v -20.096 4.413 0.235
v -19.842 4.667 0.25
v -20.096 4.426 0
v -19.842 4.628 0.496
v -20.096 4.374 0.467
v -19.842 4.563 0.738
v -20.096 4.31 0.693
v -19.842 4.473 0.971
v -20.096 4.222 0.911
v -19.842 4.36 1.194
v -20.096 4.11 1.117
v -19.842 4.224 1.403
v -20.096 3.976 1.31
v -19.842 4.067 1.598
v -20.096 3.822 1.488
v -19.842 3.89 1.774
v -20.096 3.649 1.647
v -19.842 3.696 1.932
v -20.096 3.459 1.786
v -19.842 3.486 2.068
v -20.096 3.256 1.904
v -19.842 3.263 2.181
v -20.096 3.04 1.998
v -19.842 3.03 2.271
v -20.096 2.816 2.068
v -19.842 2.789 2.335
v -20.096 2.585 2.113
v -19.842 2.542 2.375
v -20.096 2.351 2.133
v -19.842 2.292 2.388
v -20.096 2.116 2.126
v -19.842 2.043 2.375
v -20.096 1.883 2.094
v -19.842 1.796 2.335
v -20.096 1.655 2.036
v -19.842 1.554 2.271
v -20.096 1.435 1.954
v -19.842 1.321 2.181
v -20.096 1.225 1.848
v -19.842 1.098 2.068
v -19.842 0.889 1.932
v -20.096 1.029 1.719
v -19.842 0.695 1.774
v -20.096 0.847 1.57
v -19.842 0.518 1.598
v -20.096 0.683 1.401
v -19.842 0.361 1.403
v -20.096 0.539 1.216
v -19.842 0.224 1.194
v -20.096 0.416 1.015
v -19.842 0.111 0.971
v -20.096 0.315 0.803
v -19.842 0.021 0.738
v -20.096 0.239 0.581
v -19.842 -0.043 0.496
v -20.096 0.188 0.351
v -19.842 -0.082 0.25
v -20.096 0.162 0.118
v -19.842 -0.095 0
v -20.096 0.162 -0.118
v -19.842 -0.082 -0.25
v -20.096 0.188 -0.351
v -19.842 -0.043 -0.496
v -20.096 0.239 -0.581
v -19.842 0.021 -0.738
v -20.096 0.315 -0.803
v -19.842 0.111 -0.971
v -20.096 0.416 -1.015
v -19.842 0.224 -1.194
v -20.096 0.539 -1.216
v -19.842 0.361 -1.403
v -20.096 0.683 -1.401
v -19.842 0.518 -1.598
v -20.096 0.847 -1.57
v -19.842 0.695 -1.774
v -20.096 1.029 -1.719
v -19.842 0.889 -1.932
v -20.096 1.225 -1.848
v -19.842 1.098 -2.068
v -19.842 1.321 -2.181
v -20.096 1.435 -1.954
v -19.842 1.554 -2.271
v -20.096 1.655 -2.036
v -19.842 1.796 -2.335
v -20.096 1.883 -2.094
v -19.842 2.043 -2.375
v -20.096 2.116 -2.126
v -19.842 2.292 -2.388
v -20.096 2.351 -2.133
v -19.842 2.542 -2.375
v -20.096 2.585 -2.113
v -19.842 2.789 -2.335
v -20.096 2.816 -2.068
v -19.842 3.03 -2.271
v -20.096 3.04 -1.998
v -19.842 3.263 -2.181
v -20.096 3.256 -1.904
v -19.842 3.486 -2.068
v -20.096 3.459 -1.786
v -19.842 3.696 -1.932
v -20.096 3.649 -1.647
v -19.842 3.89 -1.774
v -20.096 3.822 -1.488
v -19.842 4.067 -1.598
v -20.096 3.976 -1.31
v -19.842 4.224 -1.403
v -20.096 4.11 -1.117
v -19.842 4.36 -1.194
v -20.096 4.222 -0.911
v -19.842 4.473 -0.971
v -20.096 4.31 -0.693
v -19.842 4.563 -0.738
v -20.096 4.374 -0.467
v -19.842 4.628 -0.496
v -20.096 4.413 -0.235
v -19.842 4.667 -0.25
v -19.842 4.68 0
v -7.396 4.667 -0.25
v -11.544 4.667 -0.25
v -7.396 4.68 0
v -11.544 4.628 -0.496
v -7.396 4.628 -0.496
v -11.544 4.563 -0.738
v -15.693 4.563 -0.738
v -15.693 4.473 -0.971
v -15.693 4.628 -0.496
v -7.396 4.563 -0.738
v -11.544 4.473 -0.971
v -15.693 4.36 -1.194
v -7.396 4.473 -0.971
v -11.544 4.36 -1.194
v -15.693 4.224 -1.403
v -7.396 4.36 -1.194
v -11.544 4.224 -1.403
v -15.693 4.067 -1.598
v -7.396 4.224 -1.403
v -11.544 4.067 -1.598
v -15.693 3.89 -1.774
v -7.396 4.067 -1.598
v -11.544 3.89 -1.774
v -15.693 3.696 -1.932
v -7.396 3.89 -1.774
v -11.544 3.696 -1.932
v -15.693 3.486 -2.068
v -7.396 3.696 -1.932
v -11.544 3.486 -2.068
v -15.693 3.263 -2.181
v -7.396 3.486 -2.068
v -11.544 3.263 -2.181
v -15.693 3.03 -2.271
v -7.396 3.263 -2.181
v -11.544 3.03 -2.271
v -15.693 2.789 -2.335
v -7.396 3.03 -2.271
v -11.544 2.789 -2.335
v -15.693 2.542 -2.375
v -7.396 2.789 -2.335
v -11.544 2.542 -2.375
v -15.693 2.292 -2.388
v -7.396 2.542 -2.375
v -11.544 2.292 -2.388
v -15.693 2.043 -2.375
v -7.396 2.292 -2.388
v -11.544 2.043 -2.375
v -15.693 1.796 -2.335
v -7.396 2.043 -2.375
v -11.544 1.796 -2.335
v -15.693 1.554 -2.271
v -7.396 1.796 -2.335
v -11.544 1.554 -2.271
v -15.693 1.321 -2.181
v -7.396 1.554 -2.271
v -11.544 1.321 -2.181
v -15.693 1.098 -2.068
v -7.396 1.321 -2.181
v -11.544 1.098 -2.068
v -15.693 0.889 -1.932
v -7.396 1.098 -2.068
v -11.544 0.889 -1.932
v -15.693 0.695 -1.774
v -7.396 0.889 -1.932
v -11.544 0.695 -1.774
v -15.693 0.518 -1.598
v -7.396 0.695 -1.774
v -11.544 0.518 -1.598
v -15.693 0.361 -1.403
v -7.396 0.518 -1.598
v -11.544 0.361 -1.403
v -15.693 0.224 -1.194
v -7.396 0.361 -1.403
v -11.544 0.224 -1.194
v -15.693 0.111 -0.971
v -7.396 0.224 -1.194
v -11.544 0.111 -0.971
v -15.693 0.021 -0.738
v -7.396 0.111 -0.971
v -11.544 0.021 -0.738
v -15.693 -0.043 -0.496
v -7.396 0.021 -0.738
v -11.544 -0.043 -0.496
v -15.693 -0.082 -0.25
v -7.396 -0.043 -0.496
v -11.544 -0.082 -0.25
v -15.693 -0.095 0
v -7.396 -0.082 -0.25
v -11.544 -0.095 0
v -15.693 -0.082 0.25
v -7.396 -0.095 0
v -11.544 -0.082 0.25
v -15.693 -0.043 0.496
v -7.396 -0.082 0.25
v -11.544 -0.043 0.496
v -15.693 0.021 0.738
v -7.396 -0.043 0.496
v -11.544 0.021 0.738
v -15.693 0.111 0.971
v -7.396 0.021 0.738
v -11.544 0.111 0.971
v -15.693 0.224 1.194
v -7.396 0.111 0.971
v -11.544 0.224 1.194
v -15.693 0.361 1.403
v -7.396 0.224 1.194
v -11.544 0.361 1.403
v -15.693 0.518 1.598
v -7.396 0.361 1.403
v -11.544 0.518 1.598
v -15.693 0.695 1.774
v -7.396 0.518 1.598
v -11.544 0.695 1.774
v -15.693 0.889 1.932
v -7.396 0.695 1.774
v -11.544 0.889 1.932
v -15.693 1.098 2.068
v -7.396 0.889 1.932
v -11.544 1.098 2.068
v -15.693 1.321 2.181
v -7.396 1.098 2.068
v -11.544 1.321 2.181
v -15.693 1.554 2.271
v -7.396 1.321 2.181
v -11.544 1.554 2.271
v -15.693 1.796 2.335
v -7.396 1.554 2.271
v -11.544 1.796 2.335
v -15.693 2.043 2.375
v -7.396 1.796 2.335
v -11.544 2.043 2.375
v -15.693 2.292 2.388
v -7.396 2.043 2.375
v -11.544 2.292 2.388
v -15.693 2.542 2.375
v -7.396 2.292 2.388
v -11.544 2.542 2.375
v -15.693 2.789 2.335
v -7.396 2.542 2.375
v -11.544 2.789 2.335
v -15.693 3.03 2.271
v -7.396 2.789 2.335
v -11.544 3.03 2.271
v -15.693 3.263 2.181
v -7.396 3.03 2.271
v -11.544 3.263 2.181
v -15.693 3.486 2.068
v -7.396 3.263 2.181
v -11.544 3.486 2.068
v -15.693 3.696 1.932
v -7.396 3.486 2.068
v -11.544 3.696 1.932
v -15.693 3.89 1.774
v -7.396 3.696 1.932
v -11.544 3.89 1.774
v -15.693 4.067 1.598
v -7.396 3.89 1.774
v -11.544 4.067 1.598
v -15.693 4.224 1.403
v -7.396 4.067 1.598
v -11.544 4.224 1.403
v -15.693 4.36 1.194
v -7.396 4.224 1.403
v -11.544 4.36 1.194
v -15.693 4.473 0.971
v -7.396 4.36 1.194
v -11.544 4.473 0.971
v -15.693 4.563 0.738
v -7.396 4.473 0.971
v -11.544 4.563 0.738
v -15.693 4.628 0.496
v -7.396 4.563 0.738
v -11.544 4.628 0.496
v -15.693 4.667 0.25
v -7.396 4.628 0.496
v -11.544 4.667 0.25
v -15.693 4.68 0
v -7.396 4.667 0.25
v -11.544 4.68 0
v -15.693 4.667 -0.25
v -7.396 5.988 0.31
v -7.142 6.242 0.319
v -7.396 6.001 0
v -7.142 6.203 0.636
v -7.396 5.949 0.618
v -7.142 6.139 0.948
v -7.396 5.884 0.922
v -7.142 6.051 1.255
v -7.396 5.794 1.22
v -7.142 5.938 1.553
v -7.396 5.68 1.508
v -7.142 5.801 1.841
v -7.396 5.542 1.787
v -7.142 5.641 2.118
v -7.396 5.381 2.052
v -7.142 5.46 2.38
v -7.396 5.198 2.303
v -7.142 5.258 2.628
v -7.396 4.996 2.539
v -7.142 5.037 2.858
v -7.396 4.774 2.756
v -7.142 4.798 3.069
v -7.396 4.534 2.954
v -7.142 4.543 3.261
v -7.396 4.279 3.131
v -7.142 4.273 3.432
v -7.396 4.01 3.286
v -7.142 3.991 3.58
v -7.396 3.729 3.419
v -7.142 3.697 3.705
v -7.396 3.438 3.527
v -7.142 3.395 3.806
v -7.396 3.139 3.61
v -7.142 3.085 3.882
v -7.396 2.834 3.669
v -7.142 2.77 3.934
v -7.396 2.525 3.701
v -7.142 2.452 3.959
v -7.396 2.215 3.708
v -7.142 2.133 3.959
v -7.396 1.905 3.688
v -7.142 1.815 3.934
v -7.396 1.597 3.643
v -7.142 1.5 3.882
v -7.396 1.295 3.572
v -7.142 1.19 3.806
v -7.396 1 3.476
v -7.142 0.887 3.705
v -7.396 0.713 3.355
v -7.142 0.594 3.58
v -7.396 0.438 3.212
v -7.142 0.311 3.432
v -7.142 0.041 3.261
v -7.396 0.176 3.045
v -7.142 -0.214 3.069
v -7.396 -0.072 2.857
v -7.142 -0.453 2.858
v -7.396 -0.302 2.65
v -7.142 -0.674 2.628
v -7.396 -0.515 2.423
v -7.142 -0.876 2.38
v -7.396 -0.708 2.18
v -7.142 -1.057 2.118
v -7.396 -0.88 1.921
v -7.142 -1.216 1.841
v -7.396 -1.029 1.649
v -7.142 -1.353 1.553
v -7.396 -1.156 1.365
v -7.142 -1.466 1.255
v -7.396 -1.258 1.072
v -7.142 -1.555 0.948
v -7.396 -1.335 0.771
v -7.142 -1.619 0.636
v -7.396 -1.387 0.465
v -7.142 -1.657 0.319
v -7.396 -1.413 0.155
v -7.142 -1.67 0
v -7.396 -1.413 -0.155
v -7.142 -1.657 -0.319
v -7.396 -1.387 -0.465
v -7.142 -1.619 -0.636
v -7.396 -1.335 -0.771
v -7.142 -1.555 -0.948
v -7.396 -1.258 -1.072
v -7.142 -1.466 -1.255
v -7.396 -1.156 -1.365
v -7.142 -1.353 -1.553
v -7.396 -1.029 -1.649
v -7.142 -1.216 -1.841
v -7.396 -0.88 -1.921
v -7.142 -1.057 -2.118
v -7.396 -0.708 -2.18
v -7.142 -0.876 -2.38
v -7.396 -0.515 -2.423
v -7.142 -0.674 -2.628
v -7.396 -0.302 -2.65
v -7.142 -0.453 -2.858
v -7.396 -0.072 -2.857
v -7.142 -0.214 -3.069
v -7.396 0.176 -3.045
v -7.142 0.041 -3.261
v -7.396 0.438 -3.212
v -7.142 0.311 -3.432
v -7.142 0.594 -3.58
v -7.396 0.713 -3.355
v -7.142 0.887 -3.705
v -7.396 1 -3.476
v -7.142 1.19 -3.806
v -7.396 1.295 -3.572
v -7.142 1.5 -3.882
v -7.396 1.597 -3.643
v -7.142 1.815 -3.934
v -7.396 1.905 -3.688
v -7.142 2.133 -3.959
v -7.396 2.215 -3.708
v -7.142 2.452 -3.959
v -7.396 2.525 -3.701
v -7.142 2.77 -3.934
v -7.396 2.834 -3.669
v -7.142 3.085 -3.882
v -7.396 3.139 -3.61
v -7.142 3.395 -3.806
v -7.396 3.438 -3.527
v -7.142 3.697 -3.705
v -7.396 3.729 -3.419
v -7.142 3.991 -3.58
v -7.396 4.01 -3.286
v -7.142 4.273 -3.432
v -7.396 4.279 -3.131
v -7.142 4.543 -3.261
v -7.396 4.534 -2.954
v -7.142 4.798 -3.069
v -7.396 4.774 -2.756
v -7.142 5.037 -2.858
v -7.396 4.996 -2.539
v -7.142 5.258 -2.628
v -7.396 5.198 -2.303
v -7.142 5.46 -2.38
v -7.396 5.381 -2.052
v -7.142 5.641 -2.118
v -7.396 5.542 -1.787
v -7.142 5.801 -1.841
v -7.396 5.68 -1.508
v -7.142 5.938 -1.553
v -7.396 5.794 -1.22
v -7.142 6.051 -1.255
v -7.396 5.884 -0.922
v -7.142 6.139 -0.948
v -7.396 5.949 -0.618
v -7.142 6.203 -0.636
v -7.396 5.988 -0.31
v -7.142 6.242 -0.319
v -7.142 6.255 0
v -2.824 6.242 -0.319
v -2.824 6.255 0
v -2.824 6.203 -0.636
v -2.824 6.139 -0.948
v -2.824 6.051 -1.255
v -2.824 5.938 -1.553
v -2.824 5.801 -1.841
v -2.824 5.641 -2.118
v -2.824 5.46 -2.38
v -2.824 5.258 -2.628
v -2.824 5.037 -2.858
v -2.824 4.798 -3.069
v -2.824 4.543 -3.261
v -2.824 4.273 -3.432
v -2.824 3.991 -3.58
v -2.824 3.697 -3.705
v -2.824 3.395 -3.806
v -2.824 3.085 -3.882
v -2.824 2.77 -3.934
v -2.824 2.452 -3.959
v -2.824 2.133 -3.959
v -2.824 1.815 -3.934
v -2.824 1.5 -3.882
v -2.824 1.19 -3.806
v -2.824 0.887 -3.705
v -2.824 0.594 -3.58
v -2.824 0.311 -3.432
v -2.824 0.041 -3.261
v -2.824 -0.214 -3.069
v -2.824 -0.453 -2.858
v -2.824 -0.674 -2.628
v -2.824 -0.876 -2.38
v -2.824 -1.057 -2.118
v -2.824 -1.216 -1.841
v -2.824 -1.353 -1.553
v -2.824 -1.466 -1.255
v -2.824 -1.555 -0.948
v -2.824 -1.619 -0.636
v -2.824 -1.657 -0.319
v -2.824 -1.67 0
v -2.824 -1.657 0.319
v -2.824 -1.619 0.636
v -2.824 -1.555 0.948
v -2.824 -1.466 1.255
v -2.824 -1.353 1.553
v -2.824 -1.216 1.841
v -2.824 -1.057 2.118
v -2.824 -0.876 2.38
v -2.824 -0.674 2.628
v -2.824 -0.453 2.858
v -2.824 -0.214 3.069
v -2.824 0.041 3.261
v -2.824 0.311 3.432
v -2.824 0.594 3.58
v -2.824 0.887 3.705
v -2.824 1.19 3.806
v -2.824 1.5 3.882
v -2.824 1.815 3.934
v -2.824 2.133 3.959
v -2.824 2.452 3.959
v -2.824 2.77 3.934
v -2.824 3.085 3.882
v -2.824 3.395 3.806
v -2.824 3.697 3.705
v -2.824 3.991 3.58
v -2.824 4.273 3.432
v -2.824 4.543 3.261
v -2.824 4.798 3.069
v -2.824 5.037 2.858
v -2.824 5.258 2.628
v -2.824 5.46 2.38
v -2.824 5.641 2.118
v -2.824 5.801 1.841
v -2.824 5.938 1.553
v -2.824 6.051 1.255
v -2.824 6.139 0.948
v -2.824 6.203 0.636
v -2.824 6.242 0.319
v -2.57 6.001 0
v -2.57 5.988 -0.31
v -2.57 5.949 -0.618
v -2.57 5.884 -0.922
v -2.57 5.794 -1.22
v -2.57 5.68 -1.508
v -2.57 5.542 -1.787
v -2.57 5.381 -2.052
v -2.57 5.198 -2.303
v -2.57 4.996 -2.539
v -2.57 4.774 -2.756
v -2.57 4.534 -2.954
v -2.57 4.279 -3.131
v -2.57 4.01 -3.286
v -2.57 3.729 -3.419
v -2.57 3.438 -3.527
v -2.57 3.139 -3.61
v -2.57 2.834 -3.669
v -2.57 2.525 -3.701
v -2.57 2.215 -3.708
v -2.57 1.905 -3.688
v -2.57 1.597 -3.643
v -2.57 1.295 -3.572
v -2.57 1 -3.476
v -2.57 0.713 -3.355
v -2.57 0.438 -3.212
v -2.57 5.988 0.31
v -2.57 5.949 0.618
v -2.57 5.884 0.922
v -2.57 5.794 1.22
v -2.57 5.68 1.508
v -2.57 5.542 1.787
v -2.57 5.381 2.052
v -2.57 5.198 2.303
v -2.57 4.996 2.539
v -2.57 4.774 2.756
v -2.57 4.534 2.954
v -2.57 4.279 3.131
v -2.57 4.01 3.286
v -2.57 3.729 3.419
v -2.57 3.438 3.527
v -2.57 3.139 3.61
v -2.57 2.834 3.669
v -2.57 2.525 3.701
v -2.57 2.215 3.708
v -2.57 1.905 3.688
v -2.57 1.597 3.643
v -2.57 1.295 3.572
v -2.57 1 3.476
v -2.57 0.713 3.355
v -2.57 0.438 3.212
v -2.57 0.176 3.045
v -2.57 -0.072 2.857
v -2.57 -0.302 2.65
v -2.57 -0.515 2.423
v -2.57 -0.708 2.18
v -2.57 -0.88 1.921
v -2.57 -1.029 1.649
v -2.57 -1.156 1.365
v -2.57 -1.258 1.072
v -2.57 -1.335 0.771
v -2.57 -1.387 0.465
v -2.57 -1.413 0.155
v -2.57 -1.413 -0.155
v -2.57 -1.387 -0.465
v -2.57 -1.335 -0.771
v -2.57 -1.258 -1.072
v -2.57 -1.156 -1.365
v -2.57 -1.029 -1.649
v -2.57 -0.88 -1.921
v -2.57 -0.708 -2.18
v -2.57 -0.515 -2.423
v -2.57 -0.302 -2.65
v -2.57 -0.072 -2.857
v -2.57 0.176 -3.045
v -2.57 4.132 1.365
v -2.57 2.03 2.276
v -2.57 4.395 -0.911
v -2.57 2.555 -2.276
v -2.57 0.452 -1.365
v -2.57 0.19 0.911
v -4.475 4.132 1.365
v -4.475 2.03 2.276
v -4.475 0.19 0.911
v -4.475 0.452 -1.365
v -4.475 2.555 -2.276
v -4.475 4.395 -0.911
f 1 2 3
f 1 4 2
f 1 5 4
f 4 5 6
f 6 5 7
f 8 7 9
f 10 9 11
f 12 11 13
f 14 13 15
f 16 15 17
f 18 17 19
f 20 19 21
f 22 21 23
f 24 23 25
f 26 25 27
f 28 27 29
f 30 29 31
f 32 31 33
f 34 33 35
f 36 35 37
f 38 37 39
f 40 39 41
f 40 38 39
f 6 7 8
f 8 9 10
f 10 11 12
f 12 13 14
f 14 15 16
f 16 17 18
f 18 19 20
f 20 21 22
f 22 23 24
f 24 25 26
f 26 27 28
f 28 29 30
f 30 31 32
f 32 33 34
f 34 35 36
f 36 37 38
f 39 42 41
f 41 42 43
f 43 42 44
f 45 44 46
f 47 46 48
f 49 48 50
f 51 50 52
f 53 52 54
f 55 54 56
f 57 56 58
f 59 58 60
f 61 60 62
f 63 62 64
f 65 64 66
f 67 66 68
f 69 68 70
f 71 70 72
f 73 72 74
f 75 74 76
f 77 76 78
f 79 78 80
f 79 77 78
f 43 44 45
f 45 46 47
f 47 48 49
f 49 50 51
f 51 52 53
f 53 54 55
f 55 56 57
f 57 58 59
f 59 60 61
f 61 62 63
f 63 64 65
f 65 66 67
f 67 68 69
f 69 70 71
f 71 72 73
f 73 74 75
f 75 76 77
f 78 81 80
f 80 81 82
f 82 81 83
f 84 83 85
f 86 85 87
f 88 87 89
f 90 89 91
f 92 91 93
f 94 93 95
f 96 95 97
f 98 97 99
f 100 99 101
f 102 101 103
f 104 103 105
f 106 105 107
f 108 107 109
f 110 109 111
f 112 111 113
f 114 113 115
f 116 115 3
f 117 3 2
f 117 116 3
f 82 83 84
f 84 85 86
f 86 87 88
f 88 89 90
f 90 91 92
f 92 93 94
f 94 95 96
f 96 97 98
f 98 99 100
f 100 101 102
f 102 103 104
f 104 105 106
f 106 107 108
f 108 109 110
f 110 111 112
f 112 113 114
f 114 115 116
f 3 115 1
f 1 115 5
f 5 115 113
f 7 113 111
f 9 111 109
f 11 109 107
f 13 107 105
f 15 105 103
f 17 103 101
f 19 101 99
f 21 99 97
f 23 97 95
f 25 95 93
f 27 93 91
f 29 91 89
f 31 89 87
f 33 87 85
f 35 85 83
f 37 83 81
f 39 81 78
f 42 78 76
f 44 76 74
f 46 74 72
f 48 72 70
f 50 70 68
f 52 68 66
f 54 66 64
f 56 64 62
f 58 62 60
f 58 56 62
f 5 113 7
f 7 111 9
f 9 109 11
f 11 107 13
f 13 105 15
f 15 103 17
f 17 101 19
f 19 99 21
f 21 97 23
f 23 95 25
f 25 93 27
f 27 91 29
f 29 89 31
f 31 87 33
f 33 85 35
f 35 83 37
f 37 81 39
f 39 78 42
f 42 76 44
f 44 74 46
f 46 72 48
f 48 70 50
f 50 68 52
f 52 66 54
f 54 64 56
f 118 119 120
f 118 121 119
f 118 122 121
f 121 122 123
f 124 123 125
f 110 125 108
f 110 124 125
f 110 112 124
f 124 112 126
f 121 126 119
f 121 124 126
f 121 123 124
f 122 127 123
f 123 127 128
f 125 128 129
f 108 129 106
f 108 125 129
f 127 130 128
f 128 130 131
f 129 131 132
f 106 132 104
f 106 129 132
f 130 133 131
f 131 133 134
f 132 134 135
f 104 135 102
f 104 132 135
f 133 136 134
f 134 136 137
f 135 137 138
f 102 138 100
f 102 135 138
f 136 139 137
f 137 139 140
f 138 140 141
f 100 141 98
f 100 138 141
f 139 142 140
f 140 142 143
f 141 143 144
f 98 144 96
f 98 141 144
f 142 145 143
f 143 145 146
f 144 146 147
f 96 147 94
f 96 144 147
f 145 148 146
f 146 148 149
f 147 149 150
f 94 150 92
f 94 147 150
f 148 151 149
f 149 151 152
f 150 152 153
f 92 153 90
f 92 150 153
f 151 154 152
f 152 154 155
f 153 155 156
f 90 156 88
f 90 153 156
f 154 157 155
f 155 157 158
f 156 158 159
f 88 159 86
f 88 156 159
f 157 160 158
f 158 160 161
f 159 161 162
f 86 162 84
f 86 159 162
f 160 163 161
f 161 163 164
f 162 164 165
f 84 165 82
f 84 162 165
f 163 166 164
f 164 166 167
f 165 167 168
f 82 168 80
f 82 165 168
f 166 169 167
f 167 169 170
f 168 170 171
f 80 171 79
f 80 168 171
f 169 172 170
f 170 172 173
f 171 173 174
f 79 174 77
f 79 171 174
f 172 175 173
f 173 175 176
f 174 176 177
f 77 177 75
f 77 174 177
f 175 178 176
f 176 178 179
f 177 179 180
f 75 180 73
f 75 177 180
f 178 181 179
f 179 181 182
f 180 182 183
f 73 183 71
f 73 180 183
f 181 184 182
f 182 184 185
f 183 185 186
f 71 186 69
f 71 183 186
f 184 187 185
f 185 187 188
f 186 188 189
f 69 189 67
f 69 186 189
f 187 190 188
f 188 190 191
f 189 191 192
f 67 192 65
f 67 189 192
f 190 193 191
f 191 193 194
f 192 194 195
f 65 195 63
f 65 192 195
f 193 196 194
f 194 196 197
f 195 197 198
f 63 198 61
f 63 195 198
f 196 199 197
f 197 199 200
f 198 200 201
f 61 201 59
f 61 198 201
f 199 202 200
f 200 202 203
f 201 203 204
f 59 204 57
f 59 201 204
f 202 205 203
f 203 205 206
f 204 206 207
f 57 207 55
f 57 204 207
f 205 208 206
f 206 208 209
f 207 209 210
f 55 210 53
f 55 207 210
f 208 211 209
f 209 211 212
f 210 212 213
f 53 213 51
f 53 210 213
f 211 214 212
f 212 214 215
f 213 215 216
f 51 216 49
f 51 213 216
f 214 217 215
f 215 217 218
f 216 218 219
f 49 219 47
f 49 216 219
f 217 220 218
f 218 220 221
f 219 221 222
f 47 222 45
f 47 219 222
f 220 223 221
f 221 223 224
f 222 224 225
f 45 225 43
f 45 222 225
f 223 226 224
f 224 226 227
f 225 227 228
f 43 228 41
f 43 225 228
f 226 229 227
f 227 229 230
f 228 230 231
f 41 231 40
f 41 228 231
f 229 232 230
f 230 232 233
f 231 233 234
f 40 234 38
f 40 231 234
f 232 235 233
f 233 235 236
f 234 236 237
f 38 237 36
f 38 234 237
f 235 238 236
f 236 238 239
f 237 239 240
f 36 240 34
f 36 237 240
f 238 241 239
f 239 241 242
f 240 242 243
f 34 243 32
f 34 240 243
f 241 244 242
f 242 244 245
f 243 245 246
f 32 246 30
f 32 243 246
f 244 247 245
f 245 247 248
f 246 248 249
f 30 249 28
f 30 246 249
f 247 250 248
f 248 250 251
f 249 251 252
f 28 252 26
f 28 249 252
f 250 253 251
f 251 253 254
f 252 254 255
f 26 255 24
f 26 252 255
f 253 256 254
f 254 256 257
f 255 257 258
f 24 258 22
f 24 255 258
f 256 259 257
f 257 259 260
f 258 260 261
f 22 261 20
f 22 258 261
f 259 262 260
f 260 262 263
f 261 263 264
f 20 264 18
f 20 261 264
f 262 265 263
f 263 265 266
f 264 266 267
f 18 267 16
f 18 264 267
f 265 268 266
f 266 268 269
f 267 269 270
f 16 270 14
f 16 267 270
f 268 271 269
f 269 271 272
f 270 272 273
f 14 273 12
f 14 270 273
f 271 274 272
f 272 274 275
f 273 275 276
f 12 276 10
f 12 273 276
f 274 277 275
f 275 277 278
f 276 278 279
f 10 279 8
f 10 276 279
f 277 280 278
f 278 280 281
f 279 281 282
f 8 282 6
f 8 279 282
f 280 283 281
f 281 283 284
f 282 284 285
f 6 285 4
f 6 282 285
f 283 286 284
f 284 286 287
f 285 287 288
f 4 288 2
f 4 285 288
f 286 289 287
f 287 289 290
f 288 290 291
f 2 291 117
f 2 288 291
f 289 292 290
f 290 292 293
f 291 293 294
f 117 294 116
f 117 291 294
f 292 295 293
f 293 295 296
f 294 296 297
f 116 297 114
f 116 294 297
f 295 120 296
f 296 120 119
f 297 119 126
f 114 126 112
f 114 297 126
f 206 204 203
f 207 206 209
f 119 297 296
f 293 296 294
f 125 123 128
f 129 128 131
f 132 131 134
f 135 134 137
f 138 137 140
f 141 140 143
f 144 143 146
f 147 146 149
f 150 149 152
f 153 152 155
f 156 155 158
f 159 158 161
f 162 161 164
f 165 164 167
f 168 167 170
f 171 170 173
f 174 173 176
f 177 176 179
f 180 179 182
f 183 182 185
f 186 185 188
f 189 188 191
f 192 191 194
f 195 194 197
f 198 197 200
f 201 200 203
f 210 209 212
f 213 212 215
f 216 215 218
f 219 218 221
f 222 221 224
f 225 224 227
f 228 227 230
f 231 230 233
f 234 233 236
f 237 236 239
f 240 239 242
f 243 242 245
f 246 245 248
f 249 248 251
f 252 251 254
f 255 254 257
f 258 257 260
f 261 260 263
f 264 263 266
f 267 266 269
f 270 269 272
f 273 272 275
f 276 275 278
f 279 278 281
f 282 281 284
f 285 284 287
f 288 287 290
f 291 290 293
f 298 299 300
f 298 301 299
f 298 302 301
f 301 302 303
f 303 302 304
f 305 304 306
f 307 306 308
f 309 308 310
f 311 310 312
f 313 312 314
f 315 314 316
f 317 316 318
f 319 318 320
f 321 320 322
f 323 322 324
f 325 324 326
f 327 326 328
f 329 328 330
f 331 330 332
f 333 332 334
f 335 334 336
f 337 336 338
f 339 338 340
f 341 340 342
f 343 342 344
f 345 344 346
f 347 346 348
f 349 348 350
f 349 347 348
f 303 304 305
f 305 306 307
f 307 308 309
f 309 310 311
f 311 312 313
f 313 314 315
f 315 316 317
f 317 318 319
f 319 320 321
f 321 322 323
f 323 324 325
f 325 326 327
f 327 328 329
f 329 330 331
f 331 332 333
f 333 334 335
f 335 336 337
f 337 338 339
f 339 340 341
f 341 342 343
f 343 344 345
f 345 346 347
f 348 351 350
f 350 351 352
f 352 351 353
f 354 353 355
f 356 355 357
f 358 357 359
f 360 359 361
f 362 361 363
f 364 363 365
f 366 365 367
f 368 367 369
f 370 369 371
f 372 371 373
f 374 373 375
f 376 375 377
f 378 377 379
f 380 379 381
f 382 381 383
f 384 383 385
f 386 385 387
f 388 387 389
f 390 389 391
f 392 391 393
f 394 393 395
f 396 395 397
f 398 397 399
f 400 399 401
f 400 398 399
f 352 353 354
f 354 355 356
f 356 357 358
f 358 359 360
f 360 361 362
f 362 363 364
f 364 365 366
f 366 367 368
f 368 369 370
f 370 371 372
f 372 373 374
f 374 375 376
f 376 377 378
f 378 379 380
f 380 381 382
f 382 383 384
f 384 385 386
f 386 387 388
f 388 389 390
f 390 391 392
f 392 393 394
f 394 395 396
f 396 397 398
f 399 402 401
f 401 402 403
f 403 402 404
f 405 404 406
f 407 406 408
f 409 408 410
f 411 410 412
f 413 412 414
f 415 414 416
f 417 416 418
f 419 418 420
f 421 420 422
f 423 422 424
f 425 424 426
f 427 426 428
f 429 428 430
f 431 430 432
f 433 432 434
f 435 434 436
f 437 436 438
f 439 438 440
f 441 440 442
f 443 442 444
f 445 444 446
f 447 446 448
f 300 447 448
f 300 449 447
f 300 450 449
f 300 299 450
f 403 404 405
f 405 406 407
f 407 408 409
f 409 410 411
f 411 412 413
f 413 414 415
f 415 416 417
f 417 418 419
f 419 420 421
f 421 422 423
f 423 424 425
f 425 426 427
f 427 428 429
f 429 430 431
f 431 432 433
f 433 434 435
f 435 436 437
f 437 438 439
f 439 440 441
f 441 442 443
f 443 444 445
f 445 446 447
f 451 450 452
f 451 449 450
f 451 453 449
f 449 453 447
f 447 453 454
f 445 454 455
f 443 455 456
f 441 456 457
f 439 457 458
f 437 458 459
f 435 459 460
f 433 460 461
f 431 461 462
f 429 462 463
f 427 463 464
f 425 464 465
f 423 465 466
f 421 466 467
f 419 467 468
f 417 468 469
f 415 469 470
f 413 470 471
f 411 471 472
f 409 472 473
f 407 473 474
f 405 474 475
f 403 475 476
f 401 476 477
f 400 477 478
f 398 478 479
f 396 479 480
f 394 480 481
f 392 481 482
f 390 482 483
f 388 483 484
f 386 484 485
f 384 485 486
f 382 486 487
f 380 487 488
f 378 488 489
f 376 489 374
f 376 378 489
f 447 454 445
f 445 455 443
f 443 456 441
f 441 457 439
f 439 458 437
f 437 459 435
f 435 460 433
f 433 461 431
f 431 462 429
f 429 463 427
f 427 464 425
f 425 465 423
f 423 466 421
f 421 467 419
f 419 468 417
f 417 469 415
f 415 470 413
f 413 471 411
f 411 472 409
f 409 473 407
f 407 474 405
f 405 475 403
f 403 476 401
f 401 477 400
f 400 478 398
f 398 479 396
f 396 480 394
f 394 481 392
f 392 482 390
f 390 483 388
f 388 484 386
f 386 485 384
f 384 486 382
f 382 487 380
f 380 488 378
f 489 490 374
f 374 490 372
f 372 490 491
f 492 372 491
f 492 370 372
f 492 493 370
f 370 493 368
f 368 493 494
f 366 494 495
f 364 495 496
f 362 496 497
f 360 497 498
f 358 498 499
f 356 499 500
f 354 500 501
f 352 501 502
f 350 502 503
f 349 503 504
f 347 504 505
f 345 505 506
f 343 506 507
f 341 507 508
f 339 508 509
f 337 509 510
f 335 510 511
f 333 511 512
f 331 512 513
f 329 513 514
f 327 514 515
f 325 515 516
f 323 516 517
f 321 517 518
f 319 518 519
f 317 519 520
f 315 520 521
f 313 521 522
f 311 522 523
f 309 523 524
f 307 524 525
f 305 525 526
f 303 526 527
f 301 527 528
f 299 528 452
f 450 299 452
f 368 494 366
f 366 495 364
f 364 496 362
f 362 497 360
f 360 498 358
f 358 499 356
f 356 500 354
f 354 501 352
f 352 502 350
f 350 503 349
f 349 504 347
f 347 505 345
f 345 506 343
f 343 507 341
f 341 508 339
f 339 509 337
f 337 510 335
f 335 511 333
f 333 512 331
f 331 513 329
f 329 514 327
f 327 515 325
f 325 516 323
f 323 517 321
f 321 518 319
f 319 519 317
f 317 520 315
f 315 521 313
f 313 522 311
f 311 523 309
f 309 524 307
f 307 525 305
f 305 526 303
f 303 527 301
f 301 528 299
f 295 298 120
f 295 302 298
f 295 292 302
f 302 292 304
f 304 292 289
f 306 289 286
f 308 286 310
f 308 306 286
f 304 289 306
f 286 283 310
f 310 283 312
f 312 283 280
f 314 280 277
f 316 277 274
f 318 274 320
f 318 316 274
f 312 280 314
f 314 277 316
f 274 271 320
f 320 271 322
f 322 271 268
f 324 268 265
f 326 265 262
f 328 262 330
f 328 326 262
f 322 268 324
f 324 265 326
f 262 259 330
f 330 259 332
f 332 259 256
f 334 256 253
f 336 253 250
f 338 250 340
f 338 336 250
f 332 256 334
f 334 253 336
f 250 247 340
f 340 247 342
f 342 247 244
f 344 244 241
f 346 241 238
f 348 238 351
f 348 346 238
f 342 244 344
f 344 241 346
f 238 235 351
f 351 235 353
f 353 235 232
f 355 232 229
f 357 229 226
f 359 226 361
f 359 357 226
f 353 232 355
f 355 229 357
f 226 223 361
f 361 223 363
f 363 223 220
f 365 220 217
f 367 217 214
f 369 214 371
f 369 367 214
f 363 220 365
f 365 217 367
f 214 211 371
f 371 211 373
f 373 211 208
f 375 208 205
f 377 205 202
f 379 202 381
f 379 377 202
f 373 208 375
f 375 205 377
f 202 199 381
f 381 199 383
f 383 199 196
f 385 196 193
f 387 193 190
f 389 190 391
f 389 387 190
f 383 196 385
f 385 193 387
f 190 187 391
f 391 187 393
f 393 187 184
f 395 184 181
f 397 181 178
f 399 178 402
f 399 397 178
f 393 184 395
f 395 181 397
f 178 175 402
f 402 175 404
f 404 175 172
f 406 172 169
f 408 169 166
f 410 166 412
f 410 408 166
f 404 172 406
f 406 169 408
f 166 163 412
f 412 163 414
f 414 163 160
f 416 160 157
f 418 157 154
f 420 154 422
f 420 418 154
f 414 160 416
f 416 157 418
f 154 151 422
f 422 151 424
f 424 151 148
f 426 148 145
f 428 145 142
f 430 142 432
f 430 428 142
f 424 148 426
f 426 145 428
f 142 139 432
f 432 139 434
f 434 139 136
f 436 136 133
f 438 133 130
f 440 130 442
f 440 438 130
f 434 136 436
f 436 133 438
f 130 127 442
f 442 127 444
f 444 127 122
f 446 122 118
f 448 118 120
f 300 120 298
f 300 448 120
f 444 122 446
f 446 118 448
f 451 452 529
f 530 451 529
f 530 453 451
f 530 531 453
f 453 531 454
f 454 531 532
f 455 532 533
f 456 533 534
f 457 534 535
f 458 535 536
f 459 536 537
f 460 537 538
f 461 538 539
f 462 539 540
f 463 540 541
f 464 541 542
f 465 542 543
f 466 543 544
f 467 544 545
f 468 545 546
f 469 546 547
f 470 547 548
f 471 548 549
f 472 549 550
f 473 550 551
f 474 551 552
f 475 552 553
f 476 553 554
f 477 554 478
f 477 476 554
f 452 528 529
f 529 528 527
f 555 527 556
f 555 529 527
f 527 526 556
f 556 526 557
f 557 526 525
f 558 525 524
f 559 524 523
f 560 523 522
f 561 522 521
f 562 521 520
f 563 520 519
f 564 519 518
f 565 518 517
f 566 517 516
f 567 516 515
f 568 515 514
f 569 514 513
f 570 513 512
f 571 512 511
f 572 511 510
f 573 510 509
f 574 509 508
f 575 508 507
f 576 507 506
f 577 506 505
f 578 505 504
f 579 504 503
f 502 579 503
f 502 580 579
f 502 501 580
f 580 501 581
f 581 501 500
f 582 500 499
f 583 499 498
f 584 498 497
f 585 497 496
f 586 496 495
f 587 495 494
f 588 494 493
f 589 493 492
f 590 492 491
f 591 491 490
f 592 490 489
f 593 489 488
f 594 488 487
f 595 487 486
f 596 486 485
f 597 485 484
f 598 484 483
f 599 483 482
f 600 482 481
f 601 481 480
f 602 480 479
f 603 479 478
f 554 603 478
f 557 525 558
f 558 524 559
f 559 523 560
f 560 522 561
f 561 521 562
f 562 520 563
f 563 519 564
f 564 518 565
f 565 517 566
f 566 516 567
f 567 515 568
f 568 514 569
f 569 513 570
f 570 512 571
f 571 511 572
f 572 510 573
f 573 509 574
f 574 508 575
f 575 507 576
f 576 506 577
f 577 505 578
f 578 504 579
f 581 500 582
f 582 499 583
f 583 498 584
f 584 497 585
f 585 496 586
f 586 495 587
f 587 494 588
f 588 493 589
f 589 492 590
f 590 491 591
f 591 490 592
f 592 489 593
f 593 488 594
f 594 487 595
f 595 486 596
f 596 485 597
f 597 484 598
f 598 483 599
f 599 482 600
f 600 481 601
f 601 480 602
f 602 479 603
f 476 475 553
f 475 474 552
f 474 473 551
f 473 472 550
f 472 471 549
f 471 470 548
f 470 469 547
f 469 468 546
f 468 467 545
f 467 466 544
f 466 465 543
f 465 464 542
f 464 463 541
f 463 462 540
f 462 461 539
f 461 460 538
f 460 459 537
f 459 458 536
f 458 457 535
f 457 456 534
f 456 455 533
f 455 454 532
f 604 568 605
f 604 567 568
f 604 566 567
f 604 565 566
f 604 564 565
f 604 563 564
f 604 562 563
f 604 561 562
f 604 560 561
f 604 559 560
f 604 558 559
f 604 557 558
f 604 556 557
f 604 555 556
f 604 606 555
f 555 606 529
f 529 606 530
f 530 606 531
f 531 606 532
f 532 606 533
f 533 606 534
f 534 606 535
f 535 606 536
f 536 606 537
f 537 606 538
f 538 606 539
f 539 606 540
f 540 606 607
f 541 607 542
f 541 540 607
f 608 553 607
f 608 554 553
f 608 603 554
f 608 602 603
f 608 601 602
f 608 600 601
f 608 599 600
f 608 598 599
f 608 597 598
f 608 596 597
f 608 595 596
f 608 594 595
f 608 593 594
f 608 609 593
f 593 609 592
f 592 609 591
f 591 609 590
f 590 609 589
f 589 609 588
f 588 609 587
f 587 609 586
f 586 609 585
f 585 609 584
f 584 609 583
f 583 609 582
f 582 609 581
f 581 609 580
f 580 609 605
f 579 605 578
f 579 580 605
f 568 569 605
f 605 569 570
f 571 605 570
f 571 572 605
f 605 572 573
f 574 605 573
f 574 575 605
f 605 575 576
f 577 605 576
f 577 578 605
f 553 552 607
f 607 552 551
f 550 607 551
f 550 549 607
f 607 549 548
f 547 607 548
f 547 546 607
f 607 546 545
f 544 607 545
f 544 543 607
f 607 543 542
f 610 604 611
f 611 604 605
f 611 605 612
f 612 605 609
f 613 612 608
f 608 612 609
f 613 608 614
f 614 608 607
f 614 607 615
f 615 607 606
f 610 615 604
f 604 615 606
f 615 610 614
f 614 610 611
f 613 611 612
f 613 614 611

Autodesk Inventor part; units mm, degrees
ref_plane "YZ Plane" through (0, 0, 0) normal (1, 0, 0) x (0, 1, 0)
ref_plane "XZ Plane" through (0, 0, 0) normal (0, 1, 0) x (-1, 0, 0)
ref_plane "XY Plane" through (0, 0, 0) normal (0, 0, 1) x (1, 0, 0)
sketch "Sketch1" plane through (0, 0, 0) normal (0, 0, 1) x (1, 0, 0)
  line L0 (-20.0958, 2.2922) -> (-2.5698, 2.2922)
  line L1 (-2.5698, 2.2922) -> (-2.5698, 6.2546)
  line L2 (-2.5698, 6.2546) -> (-7.3958, 6.2546)
  line L3 (-7.3958, 6.2546) -> (-7.3958, 4.6798)
  line L4 (-7.3958, 4.6798) -> (-20.0958, 4.6798)
  line L5 (-20.0958, 4.6798) -> (-20.0958, 2.2922)
  dimension "d0" = 12.7
  dimension "d1" = 2.3876
  dimension "d2" = 4.826
  dimension "d3" = 3.9624
revolve "Revolution1" add sketch "Sketch1" angle 360 about axis through (-20.0958, 2.2922, 0) along (1, 0, 0)
thread "Thread1" size "10-24 UNC" class "2A" standard "ANSI Unified Screw Threads" full length
sketch "Sketch2" plane through (-2.5698, 2.2922, 0) normal (1, 0, 0) x (0, 0, -1)
  circle A0 centre (0, 0) radius 3.9624 projected
  line L0 (-1.3654, 1.8401) -> (0.9109, 2.1025)
  line L1 (0.9109, 2.1025) -> (2.2763, 0.2624)
  line L2 (2.2763, 0.2624) -> (1.3654, -1.8401)
  line L3 (1.3654, -1.8401) -> (-0.9109, -2.1025)
  line L4 (-0.9109, -2.1025) -> (-2.2763, -0.2624)
  line L5 (-2.2763, -0.2624) -> (-1.3654, 1.8401)
  dimension "d18" = 3.9688
extrude "Extrusion1" cut sketch "Sketch2" against normal blind 1.905 contours L0 L1 L2 L3 L4 L5
chamfer "Chamfer1" distance 0.254 angle 45 3 edges at (-2.5698, -1.6702, 0) (-7.3958, -1.6702, 0) (-20.0958, -0.0954, 0)
properties part number "HW-00070"
